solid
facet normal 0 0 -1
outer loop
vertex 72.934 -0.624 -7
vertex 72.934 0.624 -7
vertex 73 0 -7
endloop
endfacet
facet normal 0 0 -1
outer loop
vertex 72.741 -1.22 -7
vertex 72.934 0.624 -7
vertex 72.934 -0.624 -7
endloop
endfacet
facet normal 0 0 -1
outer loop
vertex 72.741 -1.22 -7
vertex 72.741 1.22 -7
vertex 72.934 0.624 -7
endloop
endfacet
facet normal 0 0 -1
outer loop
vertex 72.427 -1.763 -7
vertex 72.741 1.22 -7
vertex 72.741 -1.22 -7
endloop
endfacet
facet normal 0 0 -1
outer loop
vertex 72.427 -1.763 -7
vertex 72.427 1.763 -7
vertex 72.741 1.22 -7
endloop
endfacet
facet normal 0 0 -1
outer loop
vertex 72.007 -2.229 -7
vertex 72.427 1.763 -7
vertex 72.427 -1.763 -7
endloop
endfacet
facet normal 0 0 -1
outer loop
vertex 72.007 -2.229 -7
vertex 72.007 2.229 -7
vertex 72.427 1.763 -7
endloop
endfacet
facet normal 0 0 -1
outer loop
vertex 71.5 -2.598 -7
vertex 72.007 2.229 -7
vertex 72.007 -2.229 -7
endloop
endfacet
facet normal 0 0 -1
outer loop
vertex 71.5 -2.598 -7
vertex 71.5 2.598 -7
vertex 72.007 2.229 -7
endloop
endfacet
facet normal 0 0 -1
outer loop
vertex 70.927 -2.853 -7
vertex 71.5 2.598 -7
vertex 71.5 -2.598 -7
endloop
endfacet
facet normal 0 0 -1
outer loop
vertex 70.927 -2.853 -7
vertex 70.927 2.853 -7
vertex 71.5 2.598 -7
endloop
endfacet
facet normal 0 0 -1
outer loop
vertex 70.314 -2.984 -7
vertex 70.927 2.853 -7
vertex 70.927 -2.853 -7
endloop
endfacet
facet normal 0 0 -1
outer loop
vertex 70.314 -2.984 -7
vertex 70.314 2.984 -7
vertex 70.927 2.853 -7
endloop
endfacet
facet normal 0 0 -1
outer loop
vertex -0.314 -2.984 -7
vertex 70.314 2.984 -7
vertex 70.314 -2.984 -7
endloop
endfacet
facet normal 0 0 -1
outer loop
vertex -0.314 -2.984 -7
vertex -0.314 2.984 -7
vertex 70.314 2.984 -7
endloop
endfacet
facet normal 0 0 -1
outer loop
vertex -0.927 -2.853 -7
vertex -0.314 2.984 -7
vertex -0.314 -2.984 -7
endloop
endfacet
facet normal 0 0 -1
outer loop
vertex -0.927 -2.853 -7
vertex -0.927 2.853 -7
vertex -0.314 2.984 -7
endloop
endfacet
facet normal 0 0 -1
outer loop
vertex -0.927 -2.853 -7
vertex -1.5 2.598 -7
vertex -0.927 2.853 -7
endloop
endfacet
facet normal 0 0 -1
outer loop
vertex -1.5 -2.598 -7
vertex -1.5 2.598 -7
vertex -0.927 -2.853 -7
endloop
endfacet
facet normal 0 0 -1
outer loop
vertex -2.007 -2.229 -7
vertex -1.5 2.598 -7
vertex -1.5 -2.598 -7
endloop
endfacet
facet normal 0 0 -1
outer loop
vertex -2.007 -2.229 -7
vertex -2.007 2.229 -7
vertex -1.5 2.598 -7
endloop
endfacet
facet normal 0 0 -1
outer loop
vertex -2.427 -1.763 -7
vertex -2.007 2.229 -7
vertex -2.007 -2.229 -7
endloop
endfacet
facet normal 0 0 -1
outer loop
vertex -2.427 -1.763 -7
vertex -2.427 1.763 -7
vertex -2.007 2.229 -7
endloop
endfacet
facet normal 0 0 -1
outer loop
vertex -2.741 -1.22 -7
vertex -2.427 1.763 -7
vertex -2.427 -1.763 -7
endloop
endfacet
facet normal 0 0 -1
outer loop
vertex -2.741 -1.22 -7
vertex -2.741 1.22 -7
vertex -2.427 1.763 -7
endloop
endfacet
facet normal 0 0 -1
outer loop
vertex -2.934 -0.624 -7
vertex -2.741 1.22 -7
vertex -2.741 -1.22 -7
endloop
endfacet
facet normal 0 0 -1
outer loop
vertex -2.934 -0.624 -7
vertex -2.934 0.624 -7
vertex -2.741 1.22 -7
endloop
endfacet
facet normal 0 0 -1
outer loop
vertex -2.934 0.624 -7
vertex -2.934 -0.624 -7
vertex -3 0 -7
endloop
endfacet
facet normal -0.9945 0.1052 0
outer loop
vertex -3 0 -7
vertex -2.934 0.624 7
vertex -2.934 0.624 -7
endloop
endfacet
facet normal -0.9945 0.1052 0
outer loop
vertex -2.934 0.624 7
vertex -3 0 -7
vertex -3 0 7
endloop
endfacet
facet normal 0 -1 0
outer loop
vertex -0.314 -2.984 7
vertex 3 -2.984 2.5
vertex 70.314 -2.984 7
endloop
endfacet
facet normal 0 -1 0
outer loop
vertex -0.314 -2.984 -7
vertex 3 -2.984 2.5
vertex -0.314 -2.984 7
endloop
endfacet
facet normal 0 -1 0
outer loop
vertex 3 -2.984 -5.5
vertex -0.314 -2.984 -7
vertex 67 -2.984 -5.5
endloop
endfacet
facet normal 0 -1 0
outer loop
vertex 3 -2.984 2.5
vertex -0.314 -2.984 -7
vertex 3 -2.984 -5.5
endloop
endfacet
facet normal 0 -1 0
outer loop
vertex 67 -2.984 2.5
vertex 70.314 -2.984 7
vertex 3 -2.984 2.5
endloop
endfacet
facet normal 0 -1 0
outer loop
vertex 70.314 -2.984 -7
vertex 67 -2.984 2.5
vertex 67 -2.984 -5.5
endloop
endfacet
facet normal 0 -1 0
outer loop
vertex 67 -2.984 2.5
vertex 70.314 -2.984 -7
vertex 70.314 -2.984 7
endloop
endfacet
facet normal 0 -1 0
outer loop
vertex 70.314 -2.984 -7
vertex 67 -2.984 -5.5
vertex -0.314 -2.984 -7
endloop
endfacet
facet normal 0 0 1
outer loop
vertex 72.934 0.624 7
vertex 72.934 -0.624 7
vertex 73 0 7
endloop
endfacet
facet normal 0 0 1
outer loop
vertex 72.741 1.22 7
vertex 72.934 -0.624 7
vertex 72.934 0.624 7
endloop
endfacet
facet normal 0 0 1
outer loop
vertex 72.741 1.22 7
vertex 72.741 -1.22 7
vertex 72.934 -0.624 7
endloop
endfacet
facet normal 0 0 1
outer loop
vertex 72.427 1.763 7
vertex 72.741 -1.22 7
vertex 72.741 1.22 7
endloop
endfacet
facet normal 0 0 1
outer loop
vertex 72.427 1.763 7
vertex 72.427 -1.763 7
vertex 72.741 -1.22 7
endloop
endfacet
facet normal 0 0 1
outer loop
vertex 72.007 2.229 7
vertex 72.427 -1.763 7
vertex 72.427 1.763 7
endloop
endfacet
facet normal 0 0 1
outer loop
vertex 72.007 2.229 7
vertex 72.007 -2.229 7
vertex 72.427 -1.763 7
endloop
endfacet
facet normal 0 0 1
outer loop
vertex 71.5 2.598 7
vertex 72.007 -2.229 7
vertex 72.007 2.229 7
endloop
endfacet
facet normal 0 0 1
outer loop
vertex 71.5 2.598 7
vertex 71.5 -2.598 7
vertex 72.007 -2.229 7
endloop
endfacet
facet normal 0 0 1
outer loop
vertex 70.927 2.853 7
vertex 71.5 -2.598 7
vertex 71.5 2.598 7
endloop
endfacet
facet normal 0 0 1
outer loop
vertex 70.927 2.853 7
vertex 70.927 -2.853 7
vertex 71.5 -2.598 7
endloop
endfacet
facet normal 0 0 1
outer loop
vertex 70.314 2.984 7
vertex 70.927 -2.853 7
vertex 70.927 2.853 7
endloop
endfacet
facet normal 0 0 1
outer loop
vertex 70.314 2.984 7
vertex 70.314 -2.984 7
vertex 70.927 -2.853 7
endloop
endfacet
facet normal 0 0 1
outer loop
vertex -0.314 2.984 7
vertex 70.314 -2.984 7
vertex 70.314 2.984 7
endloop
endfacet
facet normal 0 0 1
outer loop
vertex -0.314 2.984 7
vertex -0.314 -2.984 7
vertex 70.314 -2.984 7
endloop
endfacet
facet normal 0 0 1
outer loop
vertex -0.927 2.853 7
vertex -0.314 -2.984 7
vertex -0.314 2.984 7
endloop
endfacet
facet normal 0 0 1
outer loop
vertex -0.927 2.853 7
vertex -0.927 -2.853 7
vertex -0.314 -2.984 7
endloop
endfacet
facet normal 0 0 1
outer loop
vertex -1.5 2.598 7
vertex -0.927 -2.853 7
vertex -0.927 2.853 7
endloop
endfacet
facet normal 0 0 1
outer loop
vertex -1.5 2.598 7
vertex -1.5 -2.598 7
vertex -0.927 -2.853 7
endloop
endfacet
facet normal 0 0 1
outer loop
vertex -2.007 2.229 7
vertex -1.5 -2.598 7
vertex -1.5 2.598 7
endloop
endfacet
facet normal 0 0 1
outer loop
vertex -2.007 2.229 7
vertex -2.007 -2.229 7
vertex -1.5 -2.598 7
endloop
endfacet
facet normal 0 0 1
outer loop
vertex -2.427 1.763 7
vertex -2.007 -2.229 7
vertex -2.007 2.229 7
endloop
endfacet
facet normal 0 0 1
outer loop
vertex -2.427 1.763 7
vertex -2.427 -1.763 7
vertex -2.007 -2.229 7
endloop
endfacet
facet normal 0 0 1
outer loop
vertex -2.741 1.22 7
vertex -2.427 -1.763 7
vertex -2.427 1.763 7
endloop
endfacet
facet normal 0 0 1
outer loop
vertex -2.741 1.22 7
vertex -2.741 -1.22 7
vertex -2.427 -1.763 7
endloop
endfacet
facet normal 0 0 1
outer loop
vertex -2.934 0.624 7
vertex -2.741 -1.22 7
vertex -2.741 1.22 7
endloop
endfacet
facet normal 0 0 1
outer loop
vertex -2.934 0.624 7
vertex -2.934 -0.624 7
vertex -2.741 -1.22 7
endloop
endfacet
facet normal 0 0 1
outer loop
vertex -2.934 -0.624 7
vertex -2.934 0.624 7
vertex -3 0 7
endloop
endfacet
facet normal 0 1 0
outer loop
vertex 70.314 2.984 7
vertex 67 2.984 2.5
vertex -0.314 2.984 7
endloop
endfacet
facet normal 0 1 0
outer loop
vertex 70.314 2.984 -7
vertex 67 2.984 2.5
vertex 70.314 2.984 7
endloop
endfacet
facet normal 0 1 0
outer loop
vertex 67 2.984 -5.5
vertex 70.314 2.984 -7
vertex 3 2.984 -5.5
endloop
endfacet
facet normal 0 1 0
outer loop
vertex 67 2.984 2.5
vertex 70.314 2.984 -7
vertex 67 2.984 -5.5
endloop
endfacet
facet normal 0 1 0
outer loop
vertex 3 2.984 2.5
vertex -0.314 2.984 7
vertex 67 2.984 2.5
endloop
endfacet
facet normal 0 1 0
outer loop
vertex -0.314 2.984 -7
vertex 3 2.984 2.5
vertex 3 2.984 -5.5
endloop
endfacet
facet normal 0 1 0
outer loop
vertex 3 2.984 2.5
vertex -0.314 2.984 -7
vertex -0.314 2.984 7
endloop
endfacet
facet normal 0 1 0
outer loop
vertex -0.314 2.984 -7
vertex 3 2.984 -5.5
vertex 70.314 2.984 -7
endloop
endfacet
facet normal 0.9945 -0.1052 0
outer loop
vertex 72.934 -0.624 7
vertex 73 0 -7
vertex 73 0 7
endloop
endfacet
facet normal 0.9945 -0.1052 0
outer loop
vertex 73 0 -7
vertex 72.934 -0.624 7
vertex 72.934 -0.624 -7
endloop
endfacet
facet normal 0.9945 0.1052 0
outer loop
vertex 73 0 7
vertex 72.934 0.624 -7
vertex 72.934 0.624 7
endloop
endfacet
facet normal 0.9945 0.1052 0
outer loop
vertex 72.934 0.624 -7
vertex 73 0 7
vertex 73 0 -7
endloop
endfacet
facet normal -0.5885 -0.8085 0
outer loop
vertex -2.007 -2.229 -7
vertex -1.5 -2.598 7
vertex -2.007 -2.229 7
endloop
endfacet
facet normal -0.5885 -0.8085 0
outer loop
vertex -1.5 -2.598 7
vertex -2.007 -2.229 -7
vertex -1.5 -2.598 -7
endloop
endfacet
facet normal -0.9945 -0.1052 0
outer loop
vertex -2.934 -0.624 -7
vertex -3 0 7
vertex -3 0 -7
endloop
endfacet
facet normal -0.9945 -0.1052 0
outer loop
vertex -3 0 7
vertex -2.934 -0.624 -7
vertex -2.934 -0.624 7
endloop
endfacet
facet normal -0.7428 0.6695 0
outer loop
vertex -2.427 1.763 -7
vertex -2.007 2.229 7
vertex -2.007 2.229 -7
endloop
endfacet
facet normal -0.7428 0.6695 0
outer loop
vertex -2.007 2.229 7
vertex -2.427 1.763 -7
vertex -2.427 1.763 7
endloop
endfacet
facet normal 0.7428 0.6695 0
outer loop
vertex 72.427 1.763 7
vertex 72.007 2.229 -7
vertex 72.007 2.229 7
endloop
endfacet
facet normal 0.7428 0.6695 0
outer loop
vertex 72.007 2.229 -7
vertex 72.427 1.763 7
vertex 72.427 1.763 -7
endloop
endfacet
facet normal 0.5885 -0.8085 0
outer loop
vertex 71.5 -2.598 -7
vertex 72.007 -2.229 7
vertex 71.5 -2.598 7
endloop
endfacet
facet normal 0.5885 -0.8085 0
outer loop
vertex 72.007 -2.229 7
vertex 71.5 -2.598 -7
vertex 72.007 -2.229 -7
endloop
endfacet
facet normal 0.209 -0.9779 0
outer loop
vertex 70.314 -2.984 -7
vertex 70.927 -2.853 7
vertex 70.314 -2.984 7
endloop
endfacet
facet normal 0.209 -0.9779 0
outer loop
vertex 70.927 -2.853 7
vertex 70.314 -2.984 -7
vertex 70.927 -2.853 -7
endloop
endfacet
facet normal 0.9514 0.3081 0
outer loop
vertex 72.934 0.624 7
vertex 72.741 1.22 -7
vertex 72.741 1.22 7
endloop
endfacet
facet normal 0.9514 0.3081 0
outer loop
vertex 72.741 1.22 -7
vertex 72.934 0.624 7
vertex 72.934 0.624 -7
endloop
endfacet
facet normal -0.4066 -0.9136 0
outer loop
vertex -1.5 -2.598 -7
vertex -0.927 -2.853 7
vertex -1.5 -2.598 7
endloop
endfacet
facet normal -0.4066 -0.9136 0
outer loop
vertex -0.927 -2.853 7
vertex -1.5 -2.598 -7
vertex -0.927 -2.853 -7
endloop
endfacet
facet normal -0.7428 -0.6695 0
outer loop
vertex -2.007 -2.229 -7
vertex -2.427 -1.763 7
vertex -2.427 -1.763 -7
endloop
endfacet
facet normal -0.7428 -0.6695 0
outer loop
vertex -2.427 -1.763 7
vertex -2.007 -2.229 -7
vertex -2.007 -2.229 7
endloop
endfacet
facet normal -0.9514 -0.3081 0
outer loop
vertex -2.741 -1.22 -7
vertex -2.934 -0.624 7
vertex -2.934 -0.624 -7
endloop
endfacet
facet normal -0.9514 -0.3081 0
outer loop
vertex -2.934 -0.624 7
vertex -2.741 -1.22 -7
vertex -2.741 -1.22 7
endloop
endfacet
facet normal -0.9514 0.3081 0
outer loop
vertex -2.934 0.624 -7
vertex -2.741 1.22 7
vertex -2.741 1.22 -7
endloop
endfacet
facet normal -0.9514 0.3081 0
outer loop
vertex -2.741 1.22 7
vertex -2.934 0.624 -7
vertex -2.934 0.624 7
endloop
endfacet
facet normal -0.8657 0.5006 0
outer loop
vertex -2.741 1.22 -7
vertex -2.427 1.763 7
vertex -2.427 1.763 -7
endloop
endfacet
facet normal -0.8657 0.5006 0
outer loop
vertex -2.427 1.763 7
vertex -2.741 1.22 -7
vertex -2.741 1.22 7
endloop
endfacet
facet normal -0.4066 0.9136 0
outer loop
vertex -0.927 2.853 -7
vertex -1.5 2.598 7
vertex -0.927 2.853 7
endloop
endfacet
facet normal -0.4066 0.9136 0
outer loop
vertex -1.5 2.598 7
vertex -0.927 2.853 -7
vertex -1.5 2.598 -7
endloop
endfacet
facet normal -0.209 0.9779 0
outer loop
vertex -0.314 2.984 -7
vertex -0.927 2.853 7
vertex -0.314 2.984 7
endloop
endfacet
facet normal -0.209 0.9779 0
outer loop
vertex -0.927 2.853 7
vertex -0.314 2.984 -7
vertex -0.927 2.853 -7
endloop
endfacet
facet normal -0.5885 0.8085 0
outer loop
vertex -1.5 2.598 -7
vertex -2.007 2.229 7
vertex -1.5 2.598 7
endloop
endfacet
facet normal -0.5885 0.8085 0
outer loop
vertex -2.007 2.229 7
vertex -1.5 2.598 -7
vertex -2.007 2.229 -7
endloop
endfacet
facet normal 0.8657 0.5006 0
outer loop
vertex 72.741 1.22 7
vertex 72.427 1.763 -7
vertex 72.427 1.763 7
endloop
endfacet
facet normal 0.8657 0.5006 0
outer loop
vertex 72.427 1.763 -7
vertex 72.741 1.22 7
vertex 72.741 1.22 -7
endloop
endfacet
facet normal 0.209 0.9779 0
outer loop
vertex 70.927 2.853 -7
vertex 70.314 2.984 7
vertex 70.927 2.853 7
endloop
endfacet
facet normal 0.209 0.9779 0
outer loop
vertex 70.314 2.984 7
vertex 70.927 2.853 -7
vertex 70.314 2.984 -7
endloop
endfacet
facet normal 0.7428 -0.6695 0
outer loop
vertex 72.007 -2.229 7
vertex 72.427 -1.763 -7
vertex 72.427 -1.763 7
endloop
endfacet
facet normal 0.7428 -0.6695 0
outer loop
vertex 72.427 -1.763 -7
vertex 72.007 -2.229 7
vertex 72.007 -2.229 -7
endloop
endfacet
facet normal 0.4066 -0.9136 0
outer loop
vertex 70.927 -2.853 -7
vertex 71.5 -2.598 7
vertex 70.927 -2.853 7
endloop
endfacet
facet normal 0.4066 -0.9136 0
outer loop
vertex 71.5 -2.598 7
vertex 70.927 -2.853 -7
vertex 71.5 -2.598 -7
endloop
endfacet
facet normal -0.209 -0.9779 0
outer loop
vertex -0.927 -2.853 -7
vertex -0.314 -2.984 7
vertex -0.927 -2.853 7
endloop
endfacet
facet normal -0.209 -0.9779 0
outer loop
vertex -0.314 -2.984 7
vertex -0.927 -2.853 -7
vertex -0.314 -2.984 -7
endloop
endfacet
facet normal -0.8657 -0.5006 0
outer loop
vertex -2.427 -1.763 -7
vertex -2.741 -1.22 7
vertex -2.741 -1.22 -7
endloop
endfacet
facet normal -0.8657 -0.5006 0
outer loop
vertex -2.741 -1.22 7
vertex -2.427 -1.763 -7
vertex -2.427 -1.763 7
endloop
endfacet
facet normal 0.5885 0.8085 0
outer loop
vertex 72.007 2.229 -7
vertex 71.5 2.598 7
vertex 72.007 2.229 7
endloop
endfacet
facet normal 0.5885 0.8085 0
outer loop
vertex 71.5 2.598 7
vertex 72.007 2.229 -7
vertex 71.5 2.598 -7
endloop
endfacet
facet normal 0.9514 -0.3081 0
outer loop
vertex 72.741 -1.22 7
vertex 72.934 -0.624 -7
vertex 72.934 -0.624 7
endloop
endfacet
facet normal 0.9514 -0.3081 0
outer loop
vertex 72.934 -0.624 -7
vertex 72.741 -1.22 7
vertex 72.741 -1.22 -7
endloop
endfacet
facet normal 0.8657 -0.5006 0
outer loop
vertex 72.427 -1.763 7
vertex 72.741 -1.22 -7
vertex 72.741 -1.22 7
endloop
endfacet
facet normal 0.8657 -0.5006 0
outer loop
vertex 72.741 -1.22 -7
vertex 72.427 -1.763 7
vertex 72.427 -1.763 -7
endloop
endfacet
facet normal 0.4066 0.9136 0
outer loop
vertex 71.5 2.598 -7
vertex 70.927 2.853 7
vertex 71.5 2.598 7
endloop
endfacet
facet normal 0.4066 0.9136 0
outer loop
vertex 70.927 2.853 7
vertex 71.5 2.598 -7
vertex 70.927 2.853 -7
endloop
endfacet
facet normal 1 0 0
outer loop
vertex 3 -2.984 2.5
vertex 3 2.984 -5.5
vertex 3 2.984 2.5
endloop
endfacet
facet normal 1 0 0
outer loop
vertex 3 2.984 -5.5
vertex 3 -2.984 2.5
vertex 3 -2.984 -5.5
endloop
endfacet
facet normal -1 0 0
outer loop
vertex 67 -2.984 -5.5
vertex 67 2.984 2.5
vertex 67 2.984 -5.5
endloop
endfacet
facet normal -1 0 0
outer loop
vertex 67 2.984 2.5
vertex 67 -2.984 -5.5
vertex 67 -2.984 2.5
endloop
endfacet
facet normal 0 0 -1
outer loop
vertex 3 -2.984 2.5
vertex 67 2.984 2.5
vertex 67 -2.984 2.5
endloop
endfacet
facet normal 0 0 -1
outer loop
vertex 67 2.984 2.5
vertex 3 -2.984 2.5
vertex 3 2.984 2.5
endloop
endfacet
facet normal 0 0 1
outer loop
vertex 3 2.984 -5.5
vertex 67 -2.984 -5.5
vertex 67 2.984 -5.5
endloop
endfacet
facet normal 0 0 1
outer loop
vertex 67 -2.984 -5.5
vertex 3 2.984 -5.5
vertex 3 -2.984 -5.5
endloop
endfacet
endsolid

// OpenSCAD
$fn=30;
height=10;
radius=3;
difference(){
    hull(){
      cylinder(r=radius,h=height+4, center=true);
      translate([70,0,0])cylinder(r=radius,h=height+4, center=true);
  }
  rotate([90,0,0]) translate([35,-1.5,0])cube([height*6+4,height-2,999],center=true);
}
